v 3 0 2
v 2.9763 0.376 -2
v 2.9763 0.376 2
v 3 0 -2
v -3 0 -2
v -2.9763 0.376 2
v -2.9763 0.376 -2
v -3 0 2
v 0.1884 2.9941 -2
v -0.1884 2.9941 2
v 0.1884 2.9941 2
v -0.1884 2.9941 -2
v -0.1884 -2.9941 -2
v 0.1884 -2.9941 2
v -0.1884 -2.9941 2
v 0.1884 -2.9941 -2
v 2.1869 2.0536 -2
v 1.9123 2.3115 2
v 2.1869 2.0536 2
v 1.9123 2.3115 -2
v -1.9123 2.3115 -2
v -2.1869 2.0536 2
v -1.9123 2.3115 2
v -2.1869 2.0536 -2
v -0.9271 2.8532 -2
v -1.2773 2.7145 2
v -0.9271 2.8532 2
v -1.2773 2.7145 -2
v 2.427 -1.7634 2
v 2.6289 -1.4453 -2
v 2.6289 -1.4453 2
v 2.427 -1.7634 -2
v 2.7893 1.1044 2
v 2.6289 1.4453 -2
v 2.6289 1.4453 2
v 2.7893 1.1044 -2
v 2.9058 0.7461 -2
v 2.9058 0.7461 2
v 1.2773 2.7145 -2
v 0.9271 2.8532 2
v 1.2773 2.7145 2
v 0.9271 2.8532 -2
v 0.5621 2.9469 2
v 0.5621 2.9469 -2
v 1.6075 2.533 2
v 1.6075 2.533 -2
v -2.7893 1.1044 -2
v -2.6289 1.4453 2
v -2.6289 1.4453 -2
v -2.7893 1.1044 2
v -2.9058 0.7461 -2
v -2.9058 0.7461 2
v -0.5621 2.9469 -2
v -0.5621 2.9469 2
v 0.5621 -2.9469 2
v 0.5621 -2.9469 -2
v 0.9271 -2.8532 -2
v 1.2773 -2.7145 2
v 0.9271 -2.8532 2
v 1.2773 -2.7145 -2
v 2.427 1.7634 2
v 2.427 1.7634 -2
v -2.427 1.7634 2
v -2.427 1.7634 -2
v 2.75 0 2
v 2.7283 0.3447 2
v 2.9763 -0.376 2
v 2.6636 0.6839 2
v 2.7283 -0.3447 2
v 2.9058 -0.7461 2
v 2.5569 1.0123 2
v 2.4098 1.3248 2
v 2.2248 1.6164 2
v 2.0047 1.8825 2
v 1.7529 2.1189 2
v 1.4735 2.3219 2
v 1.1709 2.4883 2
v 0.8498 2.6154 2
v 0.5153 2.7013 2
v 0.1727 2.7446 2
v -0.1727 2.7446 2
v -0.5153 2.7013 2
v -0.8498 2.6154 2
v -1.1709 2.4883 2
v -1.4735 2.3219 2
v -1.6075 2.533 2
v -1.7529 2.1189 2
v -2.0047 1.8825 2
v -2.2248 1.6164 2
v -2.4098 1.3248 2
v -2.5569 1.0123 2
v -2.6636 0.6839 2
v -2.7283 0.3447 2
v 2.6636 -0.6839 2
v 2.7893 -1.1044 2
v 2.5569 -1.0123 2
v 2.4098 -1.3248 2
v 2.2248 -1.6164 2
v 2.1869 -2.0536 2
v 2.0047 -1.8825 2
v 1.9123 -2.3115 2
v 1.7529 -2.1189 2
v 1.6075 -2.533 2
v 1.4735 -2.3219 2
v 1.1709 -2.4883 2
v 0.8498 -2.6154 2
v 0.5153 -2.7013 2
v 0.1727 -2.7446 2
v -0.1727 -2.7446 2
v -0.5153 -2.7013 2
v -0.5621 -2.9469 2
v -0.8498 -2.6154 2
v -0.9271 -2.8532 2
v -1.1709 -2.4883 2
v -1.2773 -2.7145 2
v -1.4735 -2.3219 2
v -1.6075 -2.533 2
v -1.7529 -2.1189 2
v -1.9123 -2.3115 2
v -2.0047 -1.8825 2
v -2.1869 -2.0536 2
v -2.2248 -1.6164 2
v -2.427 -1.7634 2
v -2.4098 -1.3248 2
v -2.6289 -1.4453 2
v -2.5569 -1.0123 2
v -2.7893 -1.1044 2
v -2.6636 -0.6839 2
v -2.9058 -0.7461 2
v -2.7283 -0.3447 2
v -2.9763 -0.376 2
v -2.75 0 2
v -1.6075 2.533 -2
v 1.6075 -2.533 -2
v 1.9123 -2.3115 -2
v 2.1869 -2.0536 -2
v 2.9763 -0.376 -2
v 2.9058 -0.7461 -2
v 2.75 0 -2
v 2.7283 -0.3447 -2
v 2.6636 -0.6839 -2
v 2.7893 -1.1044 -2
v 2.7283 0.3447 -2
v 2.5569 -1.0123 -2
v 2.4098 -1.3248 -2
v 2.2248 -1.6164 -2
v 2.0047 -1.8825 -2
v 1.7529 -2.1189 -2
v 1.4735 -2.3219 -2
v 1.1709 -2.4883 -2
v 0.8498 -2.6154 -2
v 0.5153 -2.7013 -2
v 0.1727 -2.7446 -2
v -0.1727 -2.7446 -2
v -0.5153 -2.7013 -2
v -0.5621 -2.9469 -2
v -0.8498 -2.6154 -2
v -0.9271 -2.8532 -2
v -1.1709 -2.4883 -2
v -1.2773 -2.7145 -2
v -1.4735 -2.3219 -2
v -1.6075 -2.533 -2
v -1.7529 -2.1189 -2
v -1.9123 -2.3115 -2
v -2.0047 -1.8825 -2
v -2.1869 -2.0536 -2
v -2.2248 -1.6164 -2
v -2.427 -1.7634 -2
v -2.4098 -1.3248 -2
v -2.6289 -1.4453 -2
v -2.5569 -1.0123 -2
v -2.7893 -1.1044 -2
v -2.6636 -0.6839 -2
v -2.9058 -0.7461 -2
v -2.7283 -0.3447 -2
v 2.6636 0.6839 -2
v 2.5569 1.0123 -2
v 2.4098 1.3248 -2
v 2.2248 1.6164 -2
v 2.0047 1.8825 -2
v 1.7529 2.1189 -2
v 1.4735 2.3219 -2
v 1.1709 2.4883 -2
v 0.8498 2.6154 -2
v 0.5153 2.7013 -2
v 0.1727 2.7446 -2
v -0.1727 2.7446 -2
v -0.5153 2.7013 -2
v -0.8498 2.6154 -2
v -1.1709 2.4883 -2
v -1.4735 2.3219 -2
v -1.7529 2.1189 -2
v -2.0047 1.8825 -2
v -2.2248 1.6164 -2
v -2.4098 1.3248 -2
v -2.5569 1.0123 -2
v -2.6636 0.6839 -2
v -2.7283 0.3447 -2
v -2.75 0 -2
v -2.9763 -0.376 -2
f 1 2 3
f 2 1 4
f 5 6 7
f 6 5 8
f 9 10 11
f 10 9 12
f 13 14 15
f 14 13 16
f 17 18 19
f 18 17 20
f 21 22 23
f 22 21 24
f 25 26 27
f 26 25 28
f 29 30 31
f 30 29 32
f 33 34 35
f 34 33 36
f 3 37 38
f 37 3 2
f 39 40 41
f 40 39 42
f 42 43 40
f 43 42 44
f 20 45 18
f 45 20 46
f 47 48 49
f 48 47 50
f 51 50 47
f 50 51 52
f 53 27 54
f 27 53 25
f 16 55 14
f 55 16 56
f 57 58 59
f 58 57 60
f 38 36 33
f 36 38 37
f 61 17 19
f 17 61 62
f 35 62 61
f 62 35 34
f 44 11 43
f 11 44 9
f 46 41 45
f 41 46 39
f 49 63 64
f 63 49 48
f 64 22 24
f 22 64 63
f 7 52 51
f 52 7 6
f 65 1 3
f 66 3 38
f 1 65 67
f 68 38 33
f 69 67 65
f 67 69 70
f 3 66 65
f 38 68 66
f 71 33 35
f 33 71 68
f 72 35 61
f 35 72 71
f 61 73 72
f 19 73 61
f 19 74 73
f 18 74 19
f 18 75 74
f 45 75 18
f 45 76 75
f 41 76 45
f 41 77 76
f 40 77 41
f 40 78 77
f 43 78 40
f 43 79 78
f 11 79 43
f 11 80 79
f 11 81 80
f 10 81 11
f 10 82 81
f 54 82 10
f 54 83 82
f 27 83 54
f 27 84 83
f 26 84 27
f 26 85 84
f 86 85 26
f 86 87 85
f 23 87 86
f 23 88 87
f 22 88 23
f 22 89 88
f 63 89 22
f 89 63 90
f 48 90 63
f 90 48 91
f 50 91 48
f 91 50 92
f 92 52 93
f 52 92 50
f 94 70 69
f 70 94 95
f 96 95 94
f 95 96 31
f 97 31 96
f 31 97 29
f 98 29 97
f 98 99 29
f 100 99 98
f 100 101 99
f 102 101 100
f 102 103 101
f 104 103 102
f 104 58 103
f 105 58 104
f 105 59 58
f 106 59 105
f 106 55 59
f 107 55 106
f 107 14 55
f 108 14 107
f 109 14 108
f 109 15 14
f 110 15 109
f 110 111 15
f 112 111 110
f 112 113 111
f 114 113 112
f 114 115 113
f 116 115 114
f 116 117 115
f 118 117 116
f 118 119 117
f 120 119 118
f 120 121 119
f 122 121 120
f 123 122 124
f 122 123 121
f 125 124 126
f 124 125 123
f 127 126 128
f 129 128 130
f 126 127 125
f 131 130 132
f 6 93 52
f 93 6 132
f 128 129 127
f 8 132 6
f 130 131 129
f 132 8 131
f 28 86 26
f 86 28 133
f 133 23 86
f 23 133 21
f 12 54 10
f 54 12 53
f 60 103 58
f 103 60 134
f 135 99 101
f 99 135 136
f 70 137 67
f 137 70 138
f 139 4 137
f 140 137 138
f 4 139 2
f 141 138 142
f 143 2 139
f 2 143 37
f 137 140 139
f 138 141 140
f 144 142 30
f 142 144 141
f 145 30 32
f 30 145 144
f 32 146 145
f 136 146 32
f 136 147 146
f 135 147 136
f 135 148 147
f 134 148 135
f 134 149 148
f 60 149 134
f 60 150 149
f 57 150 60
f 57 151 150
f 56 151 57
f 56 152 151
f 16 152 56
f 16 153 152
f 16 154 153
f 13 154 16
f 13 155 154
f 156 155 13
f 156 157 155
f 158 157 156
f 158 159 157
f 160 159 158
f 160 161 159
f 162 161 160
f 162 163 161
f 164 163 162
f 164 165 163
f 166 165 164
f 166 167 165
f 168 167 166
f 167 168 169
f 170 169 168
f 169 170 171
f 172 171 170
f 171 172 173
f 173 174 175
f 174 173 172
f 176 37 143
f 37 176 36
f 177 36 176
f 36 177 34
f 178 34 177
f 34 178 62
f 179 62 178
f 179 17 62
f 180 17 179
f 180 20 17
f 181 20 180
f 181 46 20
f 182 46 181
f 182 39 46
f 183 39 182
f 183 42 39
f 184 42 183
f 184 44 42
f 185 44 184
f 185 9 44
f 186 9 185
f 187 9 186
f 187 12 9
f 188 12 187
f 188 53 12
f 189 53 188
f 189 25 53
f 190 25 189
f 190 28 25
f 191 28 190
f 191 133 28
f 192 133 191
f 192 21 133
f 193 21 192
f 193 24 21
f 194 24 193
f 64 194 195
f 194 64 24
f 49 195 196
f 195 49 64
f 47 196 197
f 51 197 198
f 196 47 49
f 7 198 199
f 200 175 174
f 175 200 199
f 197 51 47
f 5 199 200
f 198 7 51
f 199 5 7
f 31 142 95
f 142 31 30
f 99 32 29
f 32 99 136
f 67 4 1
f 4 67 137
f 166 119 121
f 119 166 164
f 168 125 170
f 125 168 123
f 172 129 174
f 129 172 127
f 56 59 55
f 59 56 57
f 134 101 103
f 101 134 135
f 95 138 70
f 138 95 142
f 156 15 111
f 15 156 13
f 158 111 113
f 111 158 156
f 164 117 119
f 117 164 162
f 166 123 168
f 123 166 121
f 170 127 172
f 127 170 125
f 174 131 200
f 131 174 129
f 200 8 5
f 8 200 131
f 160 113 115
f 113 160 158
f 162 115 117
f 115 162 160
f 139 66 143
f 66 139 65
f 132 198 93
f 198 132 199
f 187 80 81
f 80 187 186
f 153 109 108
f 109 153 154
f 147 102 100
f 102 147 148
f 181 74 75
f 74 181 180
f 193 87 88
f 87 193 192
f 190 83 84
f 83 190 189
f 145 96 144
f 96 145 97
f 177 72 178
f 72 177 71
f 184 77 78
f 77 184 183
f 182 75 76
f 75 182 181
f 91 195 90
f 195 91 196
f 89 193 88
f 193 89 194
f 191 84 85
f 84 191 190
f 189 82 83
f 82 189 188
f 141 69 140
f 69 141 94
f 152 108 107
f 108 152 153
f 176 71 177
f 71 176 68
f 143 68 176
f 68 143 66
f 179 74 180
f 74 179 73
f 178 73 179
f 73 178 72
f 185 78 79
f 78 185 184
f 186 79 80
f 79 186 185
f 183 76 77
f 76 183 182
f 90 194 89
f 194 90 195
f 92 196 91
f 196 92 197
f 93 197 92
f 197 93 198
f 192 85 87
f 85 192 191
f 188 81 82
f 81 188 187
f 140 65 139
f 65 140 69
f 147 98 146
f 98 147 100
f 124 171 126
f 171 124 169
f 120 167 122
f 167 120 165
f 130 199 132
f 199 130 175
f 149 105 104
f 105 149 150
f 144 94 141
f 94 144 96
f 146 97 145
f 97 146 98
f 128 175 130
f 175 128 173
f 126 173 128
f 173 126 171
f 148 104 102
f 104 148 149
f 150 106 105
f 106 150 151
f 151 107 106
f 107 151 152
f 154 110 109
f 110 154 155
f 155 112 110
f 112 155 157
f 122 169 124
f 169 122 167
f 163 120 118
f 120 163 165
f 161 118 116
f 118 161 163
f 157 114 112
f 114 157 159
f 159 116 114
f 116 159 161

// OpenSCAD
$fn = 50;


difference() {
	union() {
		translate(v = [0, 0, -2.0000000000]) {
			cylinder(h = 4, r = 3.0000000000);
		}
	}
	union() {
		translate(v = [0, 0, -100.0000000000]) {
			cylinder(h = 200, r = 2.7500000000);
		}
	}
}
